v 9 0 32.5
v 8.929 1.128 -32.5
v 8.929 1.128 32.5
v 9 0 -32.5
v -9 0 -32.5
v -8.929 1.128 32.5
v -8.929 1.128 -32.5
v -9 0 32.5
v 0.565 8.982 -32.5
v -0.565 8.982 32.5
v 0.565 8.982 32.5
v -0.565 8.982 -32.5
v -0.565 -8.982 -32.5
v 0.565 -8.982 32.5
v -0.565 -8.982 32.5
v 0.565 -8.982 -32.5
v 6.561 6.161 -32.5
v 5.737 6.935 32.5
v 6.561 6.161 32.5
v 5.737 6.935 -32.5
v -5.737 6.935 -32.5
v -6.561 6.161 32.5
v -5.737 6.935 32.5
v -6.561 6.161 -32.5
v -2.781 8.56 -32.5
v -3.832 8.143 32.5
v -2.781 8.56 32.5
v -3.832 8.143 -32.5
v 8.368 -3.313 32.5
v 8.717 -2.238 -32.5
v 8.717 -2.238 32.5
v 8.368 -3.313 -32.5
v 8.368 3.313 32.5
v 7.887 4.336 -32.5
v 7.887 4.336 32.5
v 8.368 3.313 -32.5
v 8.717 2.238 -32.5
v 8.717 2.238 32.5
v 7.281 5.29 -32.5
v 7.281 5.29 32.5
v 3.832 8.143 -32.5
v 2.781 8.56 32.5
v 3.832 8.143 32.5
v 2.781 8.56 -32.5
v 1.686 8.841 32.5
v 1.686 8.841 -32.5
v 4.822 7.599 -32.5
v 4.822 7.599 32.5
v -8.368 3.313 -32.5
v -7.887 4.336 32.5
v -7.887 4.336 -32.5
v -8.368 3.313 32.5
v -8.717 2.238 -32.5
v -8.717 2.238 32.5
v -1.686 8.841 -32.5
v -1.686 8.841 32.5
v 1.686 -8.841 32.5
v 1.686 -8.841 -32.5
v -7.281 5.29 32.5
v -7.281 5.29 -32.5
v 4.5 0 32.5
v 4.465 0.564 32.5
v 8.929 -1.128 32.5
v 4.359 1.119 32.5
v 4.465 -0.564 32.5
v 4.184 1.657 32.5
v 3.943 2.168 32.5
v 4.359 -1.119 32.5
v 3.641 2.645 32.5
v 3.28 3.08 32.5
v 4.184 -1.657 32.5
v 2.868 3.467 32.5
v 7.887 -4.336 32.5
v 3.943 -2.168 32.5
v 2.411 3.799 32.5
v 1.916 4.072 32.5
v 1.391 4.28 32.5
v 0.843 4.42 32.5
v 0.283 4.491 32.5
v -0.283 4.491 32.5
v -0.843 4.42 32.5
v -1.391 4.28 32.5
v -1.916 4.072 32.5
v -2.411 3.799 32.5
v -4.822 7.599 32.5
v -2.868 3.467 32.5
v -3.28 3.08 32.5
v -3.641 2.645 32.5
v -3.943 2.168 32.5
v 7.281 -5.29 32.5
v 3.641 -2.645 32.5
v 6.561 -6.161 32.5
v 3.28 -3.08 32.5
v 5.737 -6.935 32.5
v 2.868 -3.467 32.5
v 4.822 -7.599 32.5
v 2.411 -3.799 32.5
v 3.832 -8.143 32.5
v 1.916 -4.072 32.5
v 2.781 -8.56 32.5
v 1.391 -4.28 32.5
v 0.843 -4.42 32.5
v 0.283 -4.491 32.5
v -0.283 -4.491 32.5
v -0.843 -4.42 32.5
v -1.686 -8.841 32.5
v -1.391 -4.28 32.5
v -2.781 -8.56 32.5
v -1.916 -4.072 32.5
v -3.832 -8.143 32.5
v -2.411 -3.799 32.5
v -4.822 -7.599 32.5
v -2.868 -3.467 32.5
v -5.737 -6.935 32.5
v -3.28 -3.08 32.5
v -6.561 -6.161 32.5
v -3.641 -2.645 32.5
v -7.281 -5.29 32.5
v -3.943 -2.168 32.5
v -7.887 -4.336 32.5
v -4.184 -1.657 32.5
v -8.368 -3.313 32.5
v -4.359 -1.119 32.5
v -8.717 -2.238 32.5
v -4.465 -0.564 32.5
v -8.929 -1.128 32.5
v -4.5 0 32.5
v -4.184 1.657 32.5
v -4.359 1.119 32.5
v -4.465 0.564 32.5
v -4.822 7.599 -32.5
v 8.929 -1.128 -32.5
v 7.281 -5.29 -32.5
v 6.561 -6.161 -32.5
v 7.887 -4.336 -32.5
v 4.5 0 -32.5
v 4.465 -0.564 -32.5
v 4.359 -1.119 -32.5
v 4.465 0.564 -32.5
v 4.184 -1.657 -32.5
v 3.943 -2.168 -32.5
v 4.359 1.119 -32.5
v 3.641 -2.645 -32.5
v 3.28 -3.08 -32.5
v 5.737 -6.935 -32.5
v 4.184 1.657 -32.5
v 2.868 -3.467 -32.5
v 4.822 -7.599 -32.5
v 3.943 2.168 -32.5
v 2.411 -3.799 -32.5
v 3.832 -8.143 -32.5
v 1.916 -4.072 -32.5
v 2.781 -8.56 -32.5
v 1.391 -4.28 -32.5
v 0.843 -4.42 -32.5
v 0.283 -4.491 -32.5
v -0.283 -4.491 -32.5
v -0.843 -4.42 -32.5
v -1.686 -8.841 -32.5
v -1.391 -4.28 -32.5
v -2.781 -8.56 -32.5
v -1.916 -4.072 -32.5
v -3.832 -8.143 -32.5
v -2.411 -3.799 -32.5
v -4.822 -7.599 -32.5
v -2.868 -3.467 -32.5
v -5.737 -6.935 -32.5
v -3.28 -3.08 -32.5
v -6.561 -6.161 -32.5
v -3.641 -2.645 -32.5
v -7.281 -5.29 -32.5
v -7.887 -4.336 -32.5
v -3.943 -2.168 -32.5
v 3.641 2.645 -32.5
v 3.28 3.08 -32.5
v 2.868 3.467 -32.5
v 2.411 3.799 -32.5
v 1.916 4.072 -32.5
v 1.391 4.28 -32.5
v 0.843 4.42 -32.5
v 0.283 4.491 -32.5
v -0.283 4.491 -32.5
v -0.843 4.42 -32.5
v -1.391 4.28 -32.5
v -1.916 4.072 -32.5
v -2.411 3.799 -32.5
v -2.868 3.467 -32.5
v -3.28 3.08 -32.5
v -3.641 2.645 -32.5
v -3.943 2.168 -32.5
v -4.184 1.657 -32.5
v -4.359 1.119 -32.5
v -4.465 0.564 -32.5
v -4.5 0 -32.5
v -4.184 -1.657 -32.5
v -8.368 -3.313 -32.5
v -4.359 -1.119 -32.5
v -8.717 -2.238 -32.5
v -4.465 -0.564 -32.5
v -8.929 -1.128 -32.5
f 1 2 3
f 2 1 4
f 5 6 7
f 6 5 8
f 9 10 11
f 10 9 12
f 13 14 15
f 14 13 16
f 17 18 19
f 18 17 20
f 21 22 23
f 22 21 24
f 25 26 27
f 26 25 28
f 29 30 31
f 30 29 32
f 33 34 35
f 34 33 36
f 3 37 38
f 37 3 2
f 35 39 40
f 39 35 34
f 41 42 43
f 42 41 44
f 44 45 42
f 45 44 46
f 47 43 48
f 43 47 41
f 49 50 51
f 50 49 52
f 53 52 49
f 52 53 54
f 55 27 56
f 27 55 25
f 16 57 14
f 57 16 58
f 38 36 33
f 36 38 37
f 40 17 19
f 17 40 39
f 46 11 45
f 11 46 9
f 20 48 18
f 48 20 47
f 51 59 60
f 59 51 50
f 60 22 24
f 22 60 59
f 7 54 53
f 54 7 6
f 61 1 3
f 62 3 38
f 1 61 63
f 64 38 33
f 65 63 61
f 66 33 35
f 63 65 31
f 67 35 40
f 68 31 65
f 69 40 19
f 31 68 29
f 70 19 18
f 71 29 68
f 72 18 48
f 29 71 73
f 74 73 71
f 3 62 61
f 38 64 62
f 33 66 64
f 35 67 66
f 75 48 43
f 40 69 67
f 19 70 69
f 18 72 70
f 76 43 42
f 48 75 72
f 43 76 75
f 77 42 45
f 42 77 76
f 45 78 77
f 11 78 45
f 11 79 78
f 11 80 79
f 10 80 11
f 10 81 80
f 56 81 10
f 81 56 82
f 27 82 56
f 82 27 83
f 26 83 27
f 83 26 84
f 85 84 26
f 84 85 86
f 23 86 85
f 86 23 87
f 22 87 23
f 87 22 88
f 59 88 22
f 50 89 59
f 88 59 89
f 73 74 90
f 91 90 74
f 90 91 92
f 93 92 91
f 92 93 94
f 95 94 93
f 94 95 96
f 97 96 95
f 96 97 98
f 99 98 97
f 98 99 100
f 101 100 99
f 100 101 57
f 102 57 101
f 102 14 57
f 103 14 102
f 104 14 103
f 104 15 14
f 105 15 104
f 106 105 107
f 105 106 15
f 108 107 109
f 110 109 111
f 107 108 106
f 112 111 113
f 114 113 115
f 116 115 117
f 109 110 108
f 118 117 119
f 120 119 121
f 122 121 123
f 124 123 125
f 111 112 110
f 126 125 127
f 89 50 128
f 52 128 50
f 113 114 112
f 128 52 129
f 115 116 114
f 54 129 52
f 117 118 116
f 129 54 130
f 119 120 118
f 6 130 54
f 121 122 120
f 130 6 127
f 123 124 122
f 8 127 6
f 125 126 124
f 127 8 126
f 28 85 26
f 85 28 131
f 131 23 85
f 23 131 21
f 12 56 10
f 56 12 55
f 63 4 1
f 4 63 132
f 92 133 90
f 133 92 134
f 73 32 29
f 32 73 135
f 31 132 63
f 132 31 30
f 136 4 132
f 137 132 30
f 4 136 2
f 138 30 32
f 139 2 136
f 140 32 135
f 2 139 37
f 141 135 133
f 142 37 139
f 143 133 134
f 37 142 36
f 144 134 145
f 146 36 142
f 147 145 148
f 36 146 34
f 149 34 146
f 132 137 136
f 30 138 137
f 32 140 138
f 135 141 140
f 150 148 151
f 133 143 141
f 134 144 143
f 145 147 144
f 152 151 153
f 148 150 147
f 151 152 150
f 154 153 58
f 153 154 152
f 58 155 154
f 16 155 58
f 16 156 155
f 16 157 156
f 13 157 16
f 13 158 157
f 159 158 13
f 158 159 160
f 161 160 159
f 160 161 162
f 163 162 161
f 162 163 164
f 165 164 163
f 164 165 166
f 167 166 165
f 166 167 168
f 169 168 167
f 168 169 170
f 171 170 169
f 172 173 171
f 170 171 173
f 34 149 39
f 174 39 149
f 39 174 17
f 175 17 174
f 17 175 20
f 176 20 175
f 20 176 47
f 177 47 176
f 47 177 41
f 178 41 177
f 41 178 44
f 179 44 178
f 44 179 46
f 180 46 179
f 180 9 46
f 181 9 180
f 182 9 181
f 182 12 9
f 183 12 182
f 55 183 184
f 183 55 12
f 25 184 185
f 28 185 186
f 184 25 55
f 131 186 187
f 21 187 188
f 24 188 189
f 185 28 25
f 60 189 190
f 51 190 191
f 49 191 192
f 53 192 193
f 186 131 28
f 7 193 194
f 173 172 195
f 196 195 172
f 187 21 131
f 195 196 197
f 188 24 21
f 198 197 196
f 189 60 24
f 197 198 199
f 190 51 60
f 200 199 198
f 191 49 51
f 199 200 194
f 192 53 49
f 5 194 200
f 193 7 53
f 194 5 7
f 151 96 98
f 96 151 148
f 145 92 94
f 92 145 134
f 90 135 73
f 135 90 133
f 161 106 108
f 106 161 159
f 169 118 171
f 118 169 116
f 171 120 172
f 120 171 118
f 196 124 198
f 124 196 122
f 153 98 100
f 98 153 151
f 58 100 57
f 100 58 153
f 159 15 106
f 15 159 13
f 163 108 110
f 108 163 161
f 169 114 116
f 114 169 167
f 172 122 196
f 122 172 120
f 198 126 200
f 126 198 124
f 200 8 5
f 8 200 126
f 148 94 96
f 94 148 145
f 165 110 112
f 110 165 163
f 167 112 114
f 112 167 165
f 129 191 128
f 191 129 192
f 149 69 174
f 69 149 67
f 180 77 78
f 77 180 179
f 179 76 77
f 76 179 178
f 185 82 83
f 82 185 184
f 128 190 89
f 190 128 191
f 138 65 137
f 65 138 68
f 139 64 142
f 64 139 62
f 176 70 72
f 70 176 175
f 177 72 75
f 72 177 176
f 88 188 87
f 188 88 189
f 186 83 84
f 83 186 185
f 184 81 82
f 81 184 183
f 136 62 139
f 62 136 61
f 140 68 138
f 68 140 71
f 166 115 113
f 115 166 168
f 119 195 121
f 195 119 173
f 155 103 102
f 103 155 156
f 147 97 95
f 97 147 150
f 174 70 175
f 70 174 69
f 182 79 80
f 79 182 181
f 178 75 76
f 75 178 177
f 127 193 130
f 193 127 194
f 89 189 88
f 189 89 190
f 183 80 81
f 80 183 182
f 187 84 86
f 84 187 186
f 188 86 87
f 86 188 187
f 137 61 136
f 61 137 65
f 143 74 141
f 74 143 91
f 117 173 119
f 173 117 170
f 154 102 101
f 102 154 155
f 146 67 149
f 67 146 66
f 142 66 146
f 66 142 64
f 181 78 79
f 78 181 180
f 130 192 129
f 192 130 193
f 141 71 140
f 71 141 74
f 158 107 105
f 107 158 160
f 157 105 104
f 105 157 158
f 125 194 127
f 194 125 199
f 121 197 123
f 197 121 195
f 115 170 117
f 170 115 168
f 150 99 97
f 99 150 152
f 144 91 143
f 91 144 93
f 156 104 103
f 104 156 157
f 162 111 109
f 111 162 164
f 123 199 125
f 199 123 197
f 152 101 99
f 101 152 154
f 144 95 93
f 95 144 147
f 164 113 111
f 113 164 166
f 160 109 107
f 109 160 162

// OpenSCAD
$fn = 50;


difference() {
	union() {
		translate(v = [0, 0, -32.5000000000]) {
			cylinder(h = 65, r = 9.0000000000);
		}
	}
	union() {
		translate(v = [0, 0, -100.0000000000]) {
			cylinder(h = 200, r = 4.5000000000);
		}
	}
}
